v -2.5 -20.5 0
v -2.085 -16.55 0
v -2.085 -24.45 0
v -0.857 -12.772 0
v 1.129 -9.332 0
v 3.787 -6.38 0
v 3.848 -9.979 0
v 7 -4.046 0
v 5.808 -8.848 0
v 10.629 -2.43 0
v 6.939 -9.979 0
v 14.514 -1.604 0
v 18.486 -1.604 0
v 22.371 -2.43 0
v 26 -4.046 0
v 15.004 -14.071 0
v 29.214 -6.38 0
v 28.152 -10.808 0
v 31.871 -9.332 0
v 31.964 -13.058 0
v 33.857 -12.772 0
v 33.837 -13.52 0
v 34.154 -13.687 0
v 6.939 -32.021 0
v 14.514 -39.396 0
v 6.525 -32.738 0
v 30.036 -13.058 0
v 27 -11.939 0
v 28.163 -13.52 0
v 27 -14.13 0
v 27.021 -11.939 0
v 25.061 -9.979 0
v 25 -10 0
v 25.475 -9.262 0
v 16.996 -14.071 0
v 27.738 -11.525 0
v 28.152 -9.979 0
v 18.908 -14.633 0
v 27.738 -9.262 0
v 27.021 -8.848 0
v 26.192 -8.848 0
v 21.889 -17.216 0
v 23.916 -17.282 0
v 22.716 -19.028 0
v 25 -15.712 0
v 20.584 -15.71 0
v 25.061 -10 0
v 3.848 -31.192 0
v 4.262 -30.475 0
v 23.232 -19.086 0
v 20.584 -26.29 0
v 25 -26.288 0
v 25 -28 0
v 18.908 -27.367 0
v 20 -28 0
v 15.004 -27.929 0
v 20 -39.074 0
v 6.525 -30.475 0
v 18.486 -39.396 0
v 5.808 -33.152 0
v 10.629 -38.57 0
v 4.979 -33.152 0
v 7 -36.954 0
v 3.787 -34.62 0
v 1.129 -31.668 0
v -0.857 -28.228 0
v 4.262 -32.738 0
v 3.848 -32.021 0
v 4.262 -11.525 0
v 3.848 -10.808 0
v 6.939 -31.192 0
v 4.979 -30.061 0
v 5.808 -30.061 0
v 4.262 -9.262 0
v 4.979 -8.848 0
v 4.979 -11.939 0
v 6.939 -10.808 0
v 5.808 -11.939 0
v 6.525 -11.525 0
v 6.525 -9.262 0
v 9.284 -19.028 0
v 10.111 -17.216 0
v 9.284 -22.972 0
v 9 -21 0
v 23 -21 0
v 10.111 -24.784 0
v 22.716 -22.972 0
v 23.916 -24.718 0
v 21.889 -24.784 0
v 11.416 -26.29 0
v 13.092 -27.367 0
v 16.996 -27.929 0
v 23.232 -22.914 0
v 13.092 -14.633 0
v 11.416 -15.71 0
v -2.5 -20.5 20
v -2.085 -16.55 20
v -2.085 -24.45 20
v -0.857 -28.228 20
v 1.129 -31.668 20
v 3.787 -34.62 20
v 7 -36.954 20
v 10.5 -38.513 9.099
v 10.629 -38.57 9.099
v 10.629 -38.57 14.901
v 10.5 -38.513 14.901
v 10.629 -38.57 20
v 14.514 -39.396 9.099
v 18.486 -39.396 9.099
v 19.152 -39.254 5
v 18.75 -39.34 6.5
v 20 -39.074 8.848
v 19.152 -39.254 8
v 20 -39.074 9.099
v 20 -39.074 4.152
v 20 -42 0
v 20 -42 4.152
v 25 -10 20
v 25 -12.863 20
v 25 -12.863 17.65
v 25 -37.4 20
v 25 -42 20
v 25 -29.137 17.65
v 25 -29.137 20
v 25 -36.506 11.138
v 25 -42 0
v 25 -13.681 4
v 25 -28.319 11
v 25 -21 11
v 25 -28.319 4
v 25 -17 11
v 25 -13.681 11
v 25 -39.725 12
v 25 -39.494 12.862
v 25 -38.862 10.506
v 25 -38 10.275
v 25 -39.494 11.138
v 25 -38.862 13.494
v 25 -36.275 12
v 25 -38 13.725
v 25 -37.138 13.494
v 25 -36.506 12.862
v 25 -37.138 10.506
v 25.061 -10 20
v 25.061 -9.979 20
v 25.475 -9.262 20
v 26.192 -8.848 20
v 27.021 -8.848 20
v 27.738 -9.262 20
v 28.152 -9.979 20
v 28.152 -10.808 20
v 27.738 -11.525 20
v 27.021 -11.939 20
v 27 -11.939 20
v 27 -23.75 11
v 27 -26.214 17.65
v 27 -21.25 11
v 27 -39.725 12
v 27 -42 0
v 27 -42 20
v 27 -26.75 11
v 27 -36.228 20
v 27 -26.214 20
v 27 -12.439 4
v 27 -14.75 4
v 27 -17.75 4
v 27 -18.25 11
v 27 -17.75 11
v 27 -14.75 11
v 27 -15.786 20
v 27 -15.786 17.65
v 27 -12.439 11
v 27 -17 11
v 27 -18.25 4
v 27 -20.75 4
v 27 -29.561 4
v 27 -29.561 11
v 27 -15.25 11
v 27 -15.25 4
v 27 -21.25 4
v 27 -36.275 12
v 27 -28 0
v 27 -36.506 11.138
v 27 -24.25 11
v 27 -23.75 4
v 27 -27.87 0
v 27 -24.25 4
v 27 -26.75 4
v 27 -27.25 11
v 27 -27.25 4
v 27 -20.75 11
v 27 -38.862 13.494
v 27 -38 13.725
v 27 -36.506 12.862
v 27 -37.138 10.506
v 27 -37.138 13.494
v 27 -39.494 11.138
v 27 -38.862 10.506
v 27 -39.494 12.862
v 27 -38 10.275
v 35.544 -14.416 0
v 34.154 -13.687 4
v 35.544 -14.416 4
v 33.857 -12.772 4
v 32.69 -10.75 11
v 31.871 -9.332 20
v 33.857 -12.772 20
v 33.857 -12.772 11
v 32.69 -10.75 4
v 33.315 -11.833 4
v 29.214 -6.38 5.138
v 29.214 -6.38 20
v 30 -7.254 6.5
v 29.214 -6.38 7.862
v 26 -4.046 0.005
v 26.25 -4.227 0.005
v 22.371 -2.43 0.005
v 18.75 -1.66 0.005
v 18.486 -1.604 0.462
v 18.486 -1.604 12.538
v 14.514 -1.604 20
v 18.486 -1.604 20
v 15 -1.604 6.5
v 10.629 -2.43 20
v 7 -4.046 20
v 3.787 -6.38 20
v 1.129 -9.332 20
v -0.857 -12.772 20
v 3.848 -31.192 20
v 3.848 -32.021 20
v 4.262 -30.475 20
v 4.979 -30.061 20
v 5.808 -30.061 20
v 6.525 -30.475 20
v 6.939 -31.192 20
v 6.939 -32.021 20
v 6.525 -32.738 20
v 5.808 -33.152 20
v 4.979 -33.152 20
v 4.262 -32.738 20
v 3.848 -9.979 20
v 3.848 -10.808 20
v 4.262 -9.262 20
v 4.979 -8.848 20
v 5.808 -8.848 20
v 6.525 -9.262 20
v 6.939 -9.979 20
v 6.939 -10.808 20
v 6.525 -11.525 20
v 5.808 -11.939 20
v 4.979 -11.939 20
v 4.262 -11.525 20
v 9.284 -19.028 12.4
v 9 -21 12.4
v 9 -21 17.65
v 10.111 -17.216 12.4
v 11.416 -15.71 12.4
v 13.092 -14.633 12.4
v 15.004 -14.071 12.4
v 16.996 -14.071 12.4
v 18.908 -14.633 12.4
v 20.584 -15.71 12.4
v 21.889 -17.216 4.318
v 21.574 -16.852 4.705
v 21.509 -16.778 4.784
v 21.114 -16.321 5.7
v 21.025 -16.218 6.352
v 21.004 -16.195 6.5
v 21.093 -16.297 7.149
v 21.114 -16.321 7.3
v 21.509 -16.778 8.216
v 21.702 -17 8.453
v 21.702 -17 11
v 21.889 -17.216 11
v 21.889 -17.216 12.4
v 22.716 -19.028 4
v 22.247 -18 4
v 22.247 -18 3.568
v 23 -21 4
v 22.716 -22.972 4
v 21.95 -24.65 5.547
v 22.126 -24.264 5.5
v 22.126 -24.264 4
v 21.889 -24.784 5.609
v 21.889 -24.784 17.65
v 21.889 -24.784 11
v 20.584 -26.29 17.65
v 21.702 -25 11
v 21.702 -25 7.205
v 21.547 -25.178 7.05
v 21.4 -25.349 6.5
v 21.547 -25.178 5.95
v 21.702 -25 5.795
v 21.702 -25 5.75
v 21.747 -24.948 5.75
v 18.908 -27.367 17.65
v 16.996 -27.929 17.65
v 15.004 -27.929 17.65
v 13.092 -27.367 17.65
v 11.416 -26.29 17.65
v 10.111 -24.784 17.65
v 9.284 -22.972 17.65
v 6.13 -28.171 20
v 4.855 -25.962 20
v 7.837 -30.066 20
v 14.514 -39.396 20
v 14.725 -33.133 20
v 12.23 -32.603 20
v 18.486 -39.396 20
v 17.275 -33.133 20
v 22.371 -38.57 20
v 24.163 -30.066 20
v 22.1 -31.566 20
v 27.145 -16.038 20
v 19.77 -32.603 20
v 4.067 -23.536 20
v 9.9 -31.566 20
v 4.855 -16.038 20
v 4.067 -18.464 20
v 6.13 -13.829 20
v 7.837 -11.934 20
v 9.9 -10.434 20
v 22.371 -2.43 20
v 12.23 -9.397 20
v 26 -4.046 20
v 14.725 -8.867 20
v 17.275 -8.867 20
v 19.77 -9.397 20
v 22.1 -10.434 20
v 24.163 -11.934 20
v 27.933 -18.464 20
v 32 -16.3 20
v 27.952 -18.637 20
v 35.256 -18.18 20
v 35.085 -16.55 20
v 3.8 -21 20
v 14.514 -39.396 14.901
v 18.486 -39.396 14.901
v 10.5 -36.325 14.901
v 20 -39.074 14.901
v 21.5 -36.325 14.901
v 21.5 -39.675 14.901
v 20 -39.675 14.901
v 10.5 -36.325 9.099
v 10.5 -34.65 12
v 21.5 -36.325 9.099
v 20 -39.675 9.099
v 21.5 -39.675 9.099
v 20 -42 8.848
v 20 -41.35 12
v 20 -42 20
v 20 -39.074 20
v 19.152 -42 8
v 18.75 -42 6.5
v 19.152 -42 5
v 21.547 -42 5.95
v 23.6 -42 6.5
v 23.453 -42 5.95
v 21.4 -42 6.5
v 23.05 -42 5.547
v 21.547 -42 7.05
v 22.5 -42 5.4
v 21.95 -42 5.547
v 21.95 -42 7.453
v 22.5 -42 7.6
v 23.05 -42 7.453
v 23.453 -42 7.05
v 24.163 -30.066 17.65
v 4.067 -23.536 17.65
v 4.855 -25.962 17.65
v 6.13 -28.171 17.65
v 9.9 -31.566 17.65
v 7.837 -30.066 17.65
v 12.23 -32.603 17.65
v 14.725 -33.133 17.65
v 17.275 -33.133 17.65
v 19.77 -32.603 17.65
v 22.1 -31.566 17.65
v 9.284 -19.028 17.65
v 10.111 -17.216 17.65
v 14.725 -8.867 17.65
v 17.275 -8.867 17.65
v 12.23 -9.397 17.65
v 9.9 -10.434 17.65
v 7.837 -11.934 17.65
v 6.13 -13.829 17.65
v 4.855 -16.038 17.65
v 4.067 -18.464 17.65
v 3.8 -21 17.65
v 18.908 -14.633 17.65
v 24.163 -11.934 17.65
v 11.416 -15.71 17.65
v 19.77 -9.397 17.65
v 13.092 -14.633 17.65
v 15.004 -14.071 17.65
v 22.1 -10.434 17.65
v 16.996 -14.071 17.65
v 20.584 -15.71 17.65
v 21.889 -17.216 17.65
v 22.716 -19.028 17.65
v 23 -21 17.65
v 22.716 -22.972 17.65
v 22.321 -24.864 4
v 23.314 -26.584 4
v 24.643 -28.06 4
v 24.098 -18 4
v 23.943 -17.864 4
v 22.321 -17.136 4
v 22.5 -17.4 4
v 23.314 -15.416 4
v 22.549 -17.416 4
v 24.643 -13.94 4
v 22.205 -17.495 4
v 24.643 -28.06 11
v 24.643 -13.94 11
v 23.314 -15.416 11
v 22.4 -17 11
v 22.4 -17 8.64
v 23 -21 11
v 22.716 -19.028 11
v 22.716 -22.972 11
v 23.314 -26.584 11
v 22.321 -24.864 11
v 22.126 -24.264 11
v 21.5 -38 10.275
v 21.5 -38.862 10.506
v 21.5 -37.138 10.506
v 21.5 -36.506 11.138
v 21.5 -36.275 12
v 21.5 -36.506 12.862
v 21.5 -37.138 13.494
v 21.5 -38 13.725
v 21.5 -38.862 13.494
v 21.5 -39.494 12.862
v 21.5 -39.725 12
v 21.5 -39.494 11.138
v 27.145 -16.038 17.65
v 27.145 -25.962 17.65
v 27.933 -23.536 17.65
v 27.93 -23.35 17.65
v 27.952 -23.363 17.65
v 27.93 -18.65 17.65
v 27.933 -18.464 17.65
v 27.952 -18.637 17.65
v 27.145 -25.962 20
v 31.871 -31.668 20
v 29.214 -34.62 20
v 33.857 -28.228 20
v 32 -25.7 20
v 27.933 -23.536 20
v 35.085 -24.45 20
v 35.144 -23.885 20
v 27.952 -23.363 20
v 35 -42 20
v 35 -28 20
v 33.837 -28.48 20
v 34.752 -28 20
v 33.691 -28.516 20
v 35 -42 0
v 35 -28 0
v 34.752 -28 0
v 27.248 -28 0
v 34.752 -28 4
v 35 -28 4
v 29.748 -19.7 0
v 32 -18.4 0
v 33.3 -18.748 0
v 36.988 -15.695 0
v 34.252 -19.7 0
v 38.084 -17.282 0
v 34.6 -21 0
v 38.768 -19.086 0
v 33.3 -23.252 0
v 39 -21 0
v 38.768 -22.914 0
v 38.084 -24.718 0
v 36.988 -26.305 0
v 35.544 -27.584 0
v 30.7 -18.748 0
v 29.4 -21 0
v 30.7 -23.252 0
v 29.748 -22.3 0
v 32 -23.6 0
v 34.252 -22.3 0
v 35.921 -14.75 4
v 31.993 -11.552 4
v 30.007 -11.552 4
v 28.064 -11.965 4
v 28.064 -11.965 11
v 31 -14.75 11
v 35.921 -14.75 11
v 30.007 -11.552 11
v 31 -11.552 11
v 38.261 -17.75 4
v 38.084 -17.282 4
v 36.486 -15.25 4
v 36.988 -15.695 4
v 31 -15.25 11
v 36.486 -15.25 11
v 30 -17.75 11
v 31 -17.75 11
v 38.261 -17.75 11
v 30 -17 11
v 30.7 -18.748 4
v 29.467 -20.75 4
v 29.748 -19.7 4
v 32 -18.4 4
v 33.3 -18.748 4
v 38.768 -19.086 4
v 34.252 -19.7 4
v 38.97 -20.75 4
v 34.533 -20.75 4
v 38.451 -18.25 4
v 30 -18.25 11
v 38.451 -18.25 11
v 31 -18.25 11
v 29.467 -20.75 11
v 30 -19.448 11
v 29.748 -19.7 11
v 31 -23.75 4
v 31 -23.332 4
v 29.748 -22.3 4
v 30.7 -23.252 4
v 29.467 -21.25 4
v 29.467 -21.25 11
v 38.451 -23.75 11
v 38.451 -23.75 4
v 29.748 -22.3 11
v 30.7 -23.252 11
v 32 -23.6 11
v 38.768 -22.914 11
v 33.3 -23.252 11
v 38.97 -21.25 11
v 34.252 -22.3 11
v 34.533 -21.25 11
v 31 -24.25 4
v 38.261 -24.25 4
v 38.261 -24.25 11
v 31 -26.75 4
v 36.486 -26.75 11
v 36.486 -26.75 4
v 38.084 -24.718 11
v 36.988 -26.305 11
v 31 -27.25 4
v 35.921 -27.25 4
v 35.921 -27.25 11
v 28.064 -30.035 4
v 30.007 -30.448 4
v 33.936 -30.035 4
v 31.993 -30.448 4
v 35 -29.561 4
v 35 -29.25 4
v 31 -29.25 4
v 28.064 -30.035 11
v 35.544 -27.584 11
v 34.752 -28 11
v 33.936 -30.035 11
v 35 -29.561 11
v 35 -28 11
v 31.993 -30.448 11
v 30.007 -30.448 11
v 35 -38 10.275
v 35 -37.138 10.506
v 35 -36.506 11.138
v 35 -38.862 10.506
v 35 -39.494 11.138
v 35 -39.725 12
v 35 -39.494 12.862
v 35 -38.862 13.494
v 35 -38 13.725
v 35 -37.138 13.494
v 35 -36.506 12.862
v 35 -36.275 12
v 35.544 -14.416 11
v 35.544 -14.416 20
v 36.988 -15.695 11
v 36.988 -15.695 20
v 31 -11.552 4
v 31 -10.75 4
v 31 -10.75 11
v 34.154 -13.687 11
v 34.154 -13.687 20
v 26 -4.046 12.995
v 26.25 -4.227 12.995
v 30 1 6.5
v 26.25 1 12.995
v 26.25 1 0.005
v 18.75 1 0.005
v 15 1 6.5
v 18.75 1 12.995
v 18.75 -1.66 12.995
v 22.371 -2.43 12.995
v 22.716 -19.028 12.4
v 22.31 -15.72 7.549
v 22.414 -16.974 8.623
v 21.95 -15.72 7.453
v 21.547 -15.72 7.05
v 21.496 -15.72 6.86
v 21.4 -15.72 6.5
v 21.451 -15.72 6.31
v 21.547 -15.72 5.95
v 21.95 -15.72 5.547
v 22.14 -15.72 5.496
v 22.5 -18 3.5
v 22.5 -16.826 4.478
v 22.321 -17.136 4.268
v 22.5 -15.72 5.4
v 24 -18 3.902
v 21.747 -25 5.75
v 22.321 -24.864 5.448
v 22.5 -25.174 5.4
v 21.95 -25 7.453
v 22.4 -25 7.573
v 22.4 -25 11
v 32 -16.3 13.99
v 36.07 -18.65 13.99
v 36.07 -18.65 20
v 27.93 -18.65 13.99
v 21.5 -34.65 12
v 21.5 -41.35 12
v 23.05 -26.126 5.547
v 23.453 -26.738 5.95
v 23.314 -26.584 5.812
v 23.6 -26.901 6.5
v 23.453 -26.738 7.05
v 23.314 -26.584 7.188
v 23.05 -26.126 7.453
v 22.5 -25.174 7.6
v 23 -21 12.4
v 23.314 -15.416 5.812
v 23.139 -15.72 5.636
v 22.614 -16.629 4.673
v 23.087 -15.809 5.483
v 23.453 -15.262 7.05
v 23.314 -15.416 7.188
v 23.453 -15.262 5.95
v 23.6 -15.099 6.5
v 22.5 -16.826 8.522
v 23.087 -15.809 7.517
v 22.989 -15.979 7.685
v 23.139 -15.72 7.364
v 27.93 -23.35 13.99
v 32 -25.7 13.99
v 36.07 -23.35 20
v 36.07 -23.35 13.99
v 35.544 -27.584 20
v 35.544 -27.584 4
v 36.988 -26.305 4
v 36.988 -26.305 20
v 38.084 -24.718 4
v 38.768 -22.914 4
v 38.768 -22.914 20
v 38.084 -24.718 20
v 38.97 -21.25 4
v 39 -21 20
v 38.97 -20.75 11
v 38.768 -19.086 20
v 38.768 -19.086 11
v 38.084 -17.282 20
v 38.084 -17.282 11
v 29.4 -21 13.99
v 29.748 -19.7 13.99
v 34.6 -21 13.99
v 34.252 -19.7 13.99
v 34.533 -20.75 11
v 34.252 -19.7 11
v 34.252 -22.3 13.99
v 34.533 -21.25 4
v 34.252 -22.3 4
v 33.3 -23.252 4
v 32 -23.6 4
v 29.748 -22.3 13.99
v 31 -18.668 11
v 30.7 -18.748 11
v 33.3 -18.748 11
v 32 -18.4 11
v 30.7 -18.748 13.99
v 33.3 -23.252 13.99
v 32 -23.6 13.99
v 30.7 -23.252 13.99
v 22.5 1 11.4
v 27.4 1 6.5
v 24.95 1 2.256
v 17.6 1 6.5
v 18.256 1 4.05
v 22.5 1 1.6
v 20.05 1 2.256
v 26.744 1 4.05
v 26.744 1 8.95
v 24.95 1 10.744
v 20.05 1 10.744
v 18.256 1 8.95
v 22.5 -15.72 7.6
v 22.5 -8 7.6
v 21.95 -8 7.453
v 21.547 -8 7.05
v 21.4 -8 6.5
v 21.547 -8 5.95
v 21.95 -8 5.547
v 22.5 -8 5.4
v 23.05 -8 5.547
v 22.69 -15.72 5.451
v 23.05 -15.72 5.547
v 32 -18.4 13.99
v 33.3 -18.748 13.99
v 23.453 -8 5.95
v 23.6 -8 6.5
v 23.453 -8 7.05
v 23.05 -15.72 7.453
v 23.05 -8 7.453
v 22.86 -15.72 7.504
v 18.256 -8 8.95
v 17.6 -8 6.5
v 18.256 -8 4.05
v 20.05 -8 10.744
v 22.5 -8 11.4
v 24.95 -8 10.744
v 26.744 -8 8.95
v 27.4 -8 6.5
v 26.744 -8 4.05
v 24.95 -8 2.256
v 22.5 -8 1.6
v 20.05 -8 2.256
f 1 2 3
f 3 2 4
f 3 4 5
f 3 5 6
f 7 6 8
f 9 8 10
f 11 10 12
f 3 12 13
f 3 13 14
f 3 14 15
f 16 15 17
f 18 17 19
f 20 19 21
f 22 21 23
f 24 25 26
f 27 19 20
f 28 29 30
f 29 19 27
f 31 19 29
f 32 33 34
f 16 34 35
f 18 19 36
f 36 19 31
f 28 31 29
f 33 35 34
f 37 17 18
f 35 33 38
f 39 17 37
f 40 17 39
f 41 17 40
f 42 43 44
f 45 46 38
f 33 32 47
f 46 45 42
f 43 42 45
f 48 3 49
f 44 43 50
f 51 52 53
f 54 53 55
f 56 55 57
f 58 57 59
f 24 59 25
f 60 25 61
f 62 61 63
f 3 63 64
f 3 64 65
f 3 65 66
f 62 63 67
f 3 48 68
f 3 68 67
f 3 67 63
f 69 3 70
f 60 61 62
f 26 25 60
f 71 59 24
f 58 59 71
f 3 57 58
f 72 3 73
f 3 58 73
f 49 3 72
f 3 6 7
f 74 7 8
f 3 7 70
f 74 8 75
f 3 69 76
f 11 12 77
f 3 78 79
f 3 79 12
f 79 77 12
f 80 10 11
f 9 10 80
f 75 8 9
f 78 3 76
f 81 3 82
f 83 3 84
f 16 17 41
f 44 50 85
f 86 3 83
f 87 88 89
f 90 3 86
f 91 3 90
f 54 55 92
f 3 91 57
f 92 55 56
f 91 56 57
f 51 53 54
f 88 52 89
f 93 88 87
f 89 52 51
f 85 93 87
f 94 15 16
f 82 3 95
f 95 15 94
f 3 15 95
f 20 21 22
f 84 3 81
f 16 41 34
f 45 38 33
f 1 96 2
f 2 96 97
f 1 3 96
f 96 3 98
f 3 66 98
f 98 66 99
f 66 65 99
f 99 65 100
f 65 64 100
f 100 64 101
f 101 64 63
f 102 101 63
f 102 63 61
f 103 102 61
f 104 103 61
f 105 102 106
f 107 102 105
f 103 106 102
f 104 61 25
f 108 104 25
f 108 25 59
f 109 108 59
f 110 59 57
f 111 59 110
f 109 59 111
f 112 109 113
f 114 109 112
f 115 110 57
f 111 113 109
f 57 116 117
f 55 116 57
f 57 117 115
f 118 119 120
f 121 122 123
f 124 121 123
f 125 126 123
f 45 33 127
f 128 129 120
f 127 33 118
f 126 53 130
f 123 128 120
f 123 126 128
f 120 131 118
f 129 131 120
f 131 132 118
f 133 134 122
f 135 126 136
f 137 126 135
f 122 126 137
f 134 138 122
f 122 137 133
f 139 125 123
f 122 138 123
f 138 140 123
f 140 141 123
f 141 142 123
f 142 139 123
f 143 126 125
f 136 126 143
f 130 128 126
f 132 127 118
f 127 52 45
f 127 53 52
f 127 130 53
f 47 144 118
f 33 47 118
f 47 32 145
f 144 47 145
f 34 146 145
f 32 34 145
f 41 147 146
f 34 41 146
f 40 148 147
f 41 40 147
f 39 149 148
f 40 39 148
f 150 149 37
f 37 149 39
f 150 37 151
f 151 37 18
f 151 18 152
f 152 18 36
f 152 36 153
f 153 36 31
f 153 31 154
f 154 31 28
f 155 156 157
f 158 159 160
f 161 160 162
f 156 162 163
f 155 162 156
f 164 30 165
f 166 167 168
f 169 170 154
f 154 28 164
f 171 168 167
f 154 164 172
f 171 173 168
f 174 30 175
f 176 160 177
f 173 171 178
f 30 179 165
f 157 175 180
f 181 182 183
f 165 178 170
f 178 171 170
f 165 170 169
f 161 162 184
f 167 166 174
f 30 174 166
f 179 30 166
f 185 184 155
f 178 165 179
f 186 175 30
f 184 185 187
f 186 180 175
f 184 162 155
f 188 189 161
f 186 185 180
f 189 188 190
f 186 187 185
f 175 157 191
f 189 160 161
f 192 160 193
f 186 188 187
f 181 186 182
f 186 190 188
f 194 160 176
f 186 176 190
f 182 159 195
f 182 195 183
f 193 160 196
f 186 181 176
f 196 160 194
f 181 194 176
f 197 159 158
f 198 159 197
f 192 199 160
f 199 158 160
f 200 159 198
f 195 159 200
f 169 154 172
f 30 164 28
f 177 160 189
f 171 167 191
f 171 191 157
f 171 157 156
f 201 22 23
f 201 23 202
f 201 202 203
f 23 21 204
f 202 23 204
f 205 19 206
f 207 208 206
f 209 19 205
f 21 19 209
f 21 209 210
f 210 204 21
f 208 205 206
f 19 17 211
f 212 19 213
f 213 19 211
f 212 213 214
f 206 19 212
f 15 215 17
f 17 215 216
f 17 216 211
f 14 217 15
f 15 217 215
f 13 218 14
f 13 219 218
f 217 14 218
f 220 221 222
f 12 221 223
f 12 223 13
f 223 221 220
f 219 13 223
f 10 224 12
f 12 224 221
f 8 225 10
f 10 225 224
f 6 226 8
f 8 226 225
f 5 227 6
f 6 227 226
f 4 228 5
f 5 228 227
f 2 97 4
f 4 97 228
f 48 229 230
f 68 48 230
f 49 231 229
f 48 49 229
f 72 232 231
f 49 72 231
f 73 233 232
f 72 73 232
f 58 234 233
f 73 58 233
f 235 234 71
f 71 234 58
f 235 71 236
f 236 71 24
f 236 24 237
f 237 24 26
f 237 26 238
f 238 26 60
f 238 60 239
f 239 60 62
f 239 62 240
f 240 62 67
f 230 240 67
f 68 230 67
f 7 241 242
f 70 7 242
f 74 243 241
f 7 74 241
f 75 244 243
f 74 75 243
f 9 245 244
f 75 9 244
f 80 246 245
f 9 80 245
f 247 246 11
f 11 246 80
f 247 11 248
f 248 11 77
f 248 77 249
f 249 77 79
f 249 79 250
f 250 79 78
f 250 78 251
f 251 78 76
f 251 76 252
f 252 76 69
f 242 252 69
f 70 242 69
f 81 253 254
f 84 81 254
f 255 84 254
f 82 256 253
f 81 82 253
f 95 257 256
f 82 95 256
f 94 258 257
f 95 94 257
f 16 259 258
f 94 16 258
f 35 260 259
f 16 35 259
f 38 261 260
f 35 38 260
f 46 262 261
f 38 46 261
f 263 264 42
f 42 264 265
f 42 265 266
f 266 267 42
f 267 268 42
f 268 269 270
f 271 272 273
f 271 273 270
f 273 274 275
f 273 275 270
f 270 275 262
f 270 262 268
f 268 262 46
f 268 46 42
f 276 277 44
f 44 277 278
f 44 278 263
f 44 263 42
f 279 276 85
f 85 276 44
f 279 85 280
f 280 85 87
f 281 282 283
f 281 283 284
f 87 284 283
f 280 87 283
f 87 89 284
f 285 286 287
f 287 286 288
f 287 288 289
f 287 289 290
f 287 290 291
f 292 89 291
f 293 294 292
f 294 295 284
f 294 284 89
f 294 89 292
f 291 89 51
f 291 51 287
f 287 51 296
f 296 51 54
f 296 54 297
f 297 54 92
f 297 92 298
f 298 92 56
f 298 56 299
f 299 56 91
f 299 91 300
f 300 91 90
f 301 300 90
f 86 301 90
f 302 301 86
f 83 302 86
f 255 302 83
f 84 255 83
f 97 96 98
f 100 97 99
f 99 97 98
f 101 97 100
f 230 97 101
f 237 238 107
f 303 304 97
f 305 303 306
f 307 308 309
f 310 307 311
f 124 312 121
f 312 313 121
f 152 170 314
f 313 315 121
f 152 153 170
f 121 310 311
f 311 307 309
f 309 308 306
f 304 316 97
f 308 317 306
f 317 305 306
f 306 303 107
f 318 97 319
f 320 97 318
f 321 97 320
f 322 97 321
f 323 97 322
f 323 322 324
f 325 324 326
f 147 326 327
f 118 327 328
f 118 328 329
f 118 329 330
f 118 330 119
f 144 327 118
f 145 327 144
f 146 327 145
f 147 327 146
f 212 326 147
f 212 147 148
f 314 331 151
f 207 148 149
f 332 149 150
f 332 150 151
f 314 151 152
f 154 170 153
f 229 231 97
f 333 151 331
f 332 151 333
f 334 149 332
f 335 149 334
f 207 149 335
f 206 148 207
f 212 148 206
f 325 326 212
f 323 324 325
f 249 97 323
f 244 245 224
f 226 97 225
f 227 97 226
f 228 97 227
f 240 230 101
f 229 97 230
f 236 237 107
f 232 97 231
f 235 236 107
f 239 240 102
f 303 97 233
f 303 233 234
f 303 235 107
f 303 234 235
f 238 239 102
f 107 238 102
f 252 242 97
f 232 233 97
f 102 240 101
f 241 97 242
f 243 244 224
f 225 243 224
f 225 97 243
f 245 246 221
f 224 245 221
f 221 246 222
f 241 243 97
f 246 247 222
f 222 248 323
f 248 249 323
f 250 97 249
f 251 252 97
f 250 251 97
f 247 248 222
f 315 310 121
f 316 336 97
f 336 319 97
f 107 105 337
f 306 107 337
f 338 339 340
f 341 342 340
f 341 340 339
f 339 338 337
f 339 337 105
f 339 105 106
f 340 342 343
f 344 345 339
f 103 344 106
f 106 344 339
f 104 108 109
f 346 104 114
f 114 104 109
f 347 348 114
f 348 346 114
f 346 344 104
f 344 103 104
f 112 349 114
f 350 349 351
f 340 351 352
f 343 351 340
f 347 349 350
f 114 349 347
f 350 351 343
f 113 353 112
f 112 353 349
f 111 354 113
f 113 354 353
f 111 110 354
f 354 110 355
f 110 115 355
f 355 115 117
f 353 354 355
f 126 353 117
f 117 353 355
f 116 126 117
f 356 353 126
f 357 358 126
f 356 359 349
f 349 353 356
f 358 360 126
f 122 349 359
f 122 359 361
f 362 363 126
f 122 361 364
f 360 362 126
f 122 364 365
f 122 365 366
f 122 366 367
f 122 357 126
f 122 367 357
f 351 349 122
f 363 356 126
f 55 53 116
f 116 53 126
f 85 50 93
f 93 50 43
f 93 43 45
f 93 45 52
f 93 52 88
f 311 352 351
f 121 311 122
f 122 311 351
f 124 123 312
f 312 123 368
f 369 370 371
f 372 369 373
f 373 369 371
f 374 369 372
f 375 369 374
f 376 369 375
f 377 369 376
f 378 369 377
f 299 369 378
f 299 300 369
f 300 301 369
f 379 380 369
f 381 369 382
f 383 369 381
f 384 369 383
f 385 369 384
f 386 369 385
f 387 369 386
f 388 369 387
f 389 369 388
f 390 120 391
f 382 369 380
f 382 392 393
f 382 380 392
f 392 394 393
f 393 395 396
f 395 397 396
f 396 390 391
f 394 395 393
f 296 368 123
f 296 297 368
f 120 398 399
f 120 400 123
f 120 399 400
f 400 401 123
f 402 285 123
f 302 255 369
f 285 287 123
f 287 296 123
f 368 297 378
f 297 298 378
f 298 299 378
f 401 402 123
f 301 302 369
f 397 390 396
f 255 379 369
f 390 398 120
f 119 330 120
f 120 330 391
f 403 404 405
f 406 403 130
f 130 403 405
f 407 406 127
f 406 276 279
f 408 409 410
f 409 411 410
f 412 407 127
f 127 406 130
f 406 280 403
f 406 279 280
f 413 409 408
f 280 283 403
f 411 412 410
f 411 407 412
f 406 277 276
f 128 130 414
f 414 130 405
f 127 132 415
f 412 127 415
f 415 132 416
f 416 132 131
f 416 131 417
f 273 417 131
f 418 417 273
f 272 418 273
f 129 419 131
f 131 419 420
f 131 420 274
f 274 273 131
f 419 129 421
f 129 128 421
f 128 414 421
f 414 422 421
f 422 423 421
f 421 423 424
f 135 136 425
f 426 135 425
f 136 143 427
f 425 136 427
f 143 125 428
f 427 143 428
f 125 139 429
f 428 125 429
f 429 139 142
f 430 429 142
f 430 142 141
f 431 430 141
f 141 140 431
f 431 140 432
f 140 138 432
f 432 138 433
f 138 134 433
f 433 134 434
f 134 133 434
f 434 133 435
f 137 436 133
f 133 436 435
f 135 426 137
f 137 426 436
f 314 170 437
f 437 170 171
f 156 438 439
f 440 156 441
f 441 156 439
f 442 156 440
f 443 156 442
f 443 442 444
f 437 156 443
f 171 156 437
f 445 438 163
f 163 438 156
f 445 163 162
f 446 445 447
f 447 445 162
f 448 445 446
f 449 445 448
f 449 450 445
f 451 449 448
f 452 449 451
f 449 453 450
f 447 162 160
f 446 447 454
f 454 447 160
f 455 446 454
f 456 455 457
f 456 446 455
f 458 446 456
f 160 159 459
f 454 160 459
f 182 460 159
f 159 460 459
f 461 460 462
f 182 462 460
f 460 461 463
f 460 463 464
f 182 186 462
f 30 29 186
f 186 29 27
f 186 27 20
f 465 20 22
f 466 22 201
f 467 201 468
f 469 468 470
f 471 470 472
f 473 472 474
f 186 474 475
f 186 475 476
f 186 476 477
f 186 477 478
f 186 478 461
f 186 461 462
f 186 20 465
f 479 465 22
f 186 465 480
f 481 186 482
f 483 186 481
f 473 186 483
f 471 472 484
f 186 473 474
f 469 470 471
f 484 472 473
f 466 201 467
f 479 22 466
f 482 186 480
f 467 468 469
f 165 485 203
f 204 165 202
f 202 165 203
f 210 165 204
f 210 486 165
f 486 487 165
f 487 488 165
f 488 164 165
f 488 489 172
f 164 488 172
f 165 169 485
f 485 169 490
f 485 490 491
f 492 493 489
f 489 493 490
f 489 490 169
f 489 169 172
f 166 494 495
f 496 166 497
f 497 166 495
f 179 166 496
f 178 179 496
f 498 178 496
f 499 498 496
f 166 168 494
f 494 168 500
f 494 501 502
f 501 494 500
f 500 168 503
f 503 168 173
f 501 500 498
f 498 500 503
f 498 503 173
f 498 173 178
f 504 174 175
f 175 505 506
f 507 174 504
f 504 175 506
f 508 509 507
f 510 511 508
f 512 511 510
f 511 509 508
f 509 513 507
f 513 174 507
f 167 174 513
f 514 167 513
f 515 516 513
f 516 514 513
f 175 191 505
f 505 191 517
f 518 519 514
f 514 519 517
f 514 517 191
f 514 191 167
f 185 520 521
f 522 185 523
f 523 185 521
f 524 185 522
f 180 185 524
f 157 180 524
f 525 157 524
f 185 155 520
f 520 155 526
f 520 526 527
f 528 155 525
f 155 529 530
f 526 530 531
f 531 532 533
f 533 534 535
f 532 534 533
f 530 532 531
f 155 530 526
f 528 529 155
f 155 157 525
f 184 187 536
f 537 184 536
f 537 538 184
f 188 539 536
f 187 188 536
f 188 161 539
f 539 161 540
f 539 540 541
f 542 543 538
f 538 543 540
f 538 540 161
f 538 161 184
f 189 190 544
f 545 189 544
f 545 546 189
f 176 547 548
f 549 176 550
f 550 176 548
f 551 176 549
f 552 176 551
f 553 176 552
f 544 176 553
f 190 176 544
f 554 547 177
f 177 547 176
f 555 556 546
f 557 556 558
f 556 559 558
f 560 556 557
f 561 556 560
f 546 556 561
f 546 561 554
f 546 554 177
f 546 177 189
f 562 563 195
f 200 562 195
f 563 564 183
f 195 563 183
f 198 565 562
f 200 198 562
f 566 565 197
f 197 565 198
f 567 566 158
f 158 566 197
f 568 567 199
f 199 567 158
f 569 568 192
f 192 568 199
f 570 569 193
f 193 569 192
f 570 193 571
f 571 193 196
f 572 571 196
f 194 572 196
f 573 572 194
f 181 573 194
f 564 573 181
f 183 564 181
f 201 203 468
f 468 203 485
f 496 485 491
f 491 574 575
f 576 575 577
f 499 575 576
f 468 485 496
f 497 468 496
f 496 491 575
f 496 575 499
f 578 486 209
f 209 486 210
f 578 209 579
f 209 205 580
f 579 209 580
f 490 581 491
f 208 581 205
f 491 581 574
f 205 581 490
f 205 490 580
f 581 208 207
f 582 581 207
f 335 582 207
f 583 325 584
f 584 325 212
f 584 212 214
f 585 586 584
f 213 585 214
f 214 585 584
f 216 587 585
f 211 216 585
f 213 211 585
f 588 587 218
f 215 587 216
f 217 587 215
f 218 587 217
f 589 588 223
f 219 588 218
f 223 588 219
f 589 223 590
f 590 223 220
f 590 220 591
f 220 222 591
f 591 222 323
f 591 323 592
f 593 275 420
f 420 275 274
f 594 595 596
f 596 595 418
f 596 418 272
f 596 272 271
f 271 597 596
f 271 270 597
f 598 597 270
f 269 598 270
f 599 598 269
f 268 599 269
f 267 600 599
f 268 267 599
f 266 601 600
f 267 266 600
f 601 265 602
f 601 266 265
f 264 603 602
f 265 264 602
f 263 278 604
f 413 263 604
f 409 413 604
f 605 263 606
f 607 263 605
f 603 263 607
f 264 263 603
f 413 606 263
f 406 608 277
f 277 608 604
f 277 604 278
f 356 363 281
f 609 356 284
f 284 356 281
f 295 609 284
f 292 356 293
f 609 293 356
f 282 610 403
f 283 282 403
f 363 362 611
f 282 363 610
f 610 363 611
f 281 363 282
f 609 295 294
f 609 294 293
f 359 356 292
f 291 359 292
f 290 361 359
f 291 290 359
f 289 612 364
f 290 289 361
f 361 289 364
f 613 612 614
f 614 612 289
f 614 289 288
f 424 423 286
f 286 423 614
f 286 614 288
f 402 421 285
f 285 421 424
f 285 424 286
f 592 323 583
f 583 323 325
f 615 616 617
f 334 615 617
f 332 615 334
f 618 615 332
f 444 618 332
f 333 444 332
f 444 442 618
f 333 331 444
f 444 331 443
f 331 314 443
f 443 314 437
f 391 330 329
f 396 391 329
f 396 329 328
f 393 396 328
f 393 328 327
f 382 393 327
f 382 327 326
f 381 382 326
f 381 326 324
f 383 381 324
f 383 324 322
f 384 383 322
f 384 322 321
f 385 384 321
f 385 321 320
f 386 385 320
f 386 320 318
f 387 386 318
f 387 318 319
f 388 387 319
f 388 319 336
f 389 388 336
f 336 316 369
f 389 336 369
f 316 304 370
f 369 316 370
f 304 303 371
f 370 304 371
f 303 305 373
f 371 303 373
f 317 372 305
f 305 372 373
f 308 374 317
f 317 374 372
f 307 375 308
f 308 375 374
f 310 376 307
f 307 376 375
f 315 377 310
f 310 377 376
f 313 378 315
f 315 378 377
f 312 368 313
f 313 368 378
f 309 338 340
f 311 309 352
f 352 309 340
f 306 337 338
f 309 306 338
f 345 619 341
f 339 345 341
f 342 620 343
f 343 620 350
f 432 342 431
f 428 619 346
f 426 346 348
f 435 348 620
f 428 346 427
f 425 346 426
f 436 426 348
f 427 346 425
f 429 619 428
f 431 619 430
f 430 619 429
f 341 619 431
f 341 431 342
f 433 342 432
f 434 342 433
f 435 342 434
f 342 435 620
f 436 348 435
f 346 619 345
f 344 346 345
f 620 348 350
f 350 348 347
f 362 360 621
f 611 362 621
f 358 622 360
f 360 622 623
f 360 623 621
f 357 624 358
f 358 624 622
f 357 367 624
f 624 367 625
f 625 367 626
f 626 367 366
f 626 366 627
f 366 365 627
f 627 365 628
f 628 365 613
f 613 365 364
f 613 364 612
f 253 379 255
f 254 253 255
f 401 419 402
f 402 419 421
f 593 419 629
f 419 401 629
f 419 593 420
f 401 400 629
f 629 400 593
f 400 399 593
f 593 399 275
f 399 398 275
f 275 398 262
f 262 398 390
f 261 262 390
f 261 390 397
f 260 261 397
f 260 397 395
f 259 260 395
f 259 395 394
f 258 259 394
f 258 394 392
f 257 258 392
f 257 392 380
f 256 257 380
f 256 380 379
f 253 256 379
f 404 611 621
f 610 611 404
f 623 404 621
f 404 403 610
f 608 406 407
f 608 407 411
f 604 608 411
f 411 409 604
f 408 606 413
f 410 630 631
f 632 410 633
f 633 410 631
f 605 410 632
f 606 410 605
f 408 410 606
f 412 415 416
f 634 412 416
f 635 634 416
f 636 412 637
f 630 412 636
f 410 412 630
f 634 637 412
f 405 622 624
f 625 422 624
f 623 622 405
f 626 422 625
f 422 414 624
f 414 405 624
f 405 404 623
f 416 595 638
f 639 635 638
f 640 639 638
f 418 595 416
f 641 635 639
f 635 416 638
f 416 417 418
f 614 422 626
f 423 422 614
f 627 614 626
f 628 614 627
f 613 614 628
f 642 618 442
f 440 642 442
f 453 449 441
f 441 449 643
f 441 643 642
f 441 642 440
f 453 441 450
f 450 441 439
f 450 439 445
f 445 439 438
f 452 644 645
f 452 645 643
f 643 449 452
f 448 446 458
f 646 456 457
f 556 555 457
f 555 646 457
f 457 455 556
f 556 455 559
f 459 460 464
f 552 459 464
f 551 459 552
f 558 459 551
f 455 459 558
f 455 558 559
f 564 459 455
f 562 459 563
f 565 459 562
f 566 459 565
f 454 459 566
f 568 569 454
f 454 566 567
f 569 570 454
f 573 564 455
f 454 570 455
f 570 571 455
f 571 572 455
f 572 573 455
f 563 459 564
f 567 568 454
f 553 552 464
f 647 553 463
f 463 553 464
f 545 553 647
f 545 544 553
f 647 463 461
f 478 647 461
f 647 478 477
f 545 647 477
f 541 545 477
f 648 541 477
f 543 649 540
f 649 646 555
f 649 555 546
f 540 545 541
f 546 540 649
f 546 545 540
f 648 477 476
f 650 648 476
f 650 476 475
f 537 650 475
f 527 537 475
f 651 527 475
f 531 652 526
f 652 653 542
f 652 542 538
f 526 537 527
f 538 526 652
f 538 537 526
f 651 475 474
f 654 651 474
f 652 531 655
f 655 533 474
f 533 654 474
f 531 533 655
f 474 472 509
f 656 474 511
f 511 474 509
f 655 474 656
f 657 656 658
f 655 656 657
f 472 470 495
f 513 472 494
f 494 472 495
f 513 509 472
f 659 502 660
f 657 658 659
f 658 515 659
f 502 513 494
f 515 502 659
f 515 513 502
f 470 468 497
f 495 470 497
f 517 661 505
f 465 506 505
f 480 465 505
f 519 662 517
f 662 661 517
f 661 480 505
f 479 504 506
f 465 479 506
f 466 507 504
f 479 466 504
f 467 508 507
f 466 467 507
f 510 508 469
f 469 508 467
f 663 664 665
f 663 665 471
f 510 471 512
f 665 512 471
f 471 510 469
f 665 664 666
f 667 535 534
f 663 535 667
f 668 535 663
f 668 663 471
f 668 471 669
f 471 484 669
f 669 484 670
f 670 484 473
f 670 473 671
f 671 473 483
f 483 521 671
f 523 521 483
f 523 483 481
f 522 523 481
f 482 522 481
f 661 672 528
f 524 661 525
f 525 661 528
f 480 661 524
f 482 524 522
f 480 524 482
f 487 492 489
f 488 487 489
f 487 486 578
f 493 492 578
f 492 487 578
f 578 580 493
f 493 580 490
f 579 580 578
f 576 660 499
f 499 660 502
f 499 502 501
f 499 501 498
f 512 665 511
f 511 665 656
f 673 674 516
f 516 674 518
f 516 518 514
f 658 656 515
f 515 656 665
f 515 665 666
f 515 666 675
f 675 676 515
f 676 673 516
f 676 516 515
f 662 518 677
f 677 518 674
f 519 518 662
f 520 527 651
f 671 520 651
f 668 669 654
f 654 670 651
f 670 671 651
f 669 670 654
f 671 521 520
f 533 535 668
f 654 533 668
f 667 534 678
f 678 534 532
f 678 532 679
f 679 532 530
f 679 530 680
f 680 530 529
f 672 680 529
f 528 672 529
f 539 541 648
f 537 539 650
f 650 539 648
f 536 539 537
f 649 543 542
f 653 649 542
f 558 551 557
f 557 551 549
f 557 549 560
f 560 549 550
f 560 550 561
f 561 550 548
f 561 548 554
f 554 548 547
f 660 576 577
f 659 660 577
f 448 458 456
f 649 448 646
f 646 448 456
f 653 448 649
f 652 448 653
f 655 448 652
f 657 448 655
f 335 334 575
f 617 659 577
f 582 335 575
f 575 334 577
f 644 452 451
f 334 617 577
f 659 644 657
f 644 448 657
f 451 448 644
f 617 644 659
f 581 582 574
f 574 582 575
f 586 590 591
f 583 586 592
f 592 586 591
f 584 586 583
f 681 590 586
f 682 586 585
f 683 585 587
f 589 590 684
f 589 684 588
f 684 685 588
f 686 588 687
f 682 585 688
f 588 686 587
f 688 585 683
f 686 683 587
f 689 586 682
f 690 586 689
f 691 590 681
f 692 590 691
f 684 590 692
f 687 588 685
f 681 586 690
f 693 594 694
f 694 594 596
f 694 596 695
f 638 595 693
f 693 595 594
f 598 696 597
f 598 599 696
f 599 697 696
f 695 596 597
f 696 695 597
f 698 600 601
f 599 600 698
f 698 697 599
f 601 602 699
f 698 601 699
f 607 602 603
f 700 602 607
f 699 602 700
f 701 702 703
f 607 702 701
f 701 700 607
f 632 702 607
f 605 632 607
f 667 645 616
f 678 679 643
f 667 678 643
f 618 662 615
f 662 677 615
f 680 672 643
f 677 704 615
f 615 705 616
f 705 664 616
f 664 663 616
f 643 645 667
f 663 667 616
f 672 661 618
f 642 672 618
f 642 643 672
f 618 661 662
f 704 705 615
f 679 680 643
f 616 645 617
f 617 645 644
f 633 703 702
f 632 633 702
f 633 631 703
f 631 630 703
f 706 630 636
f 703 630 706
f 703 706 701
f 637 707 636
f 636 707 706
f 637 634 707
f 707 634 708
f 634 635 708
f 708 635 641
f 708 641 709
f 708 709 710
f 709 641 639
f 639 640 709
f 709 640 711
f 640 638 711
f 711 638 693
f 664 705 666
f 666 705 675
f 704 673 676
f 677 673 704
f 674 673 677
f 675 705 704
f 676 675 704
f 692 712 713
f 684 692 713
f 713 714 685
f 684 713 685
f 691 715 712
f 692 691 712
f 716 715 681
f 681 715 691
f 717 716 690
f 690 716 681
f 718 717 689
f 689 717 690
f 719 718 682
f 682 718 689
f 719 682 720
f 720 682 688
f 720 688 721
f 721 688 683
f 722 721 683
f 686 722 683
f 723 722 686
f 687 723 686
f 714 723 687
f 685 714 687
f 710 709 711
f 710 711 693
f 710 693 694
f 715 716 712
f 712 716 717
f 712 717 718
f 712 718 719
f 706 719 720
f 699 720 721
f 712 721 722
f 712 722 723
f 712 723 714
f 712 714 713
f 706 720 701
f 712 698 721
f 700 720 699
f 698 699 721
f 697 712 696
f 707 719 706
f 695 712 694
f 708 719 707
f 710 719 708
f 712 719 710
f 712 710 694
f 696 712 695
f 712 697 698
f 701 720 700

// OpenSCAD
// file: configuration.scad
// Increase this if your slicer or printer make holes too tight.
extra_radius = 0.1;

// OD = outside diameter, corner to corner.
m3_nut_od = 6.1;
m3_nut_radius = m3_nut_od/2 + 0.2 + extra_radius;
m3_washer_radius = 3.5 + extra_radius;
m3_nut_thickness = 2.35;
m3_nyloc_thickness = 3.85;

// Major diameter of metric 3mm thread.
m3_major = 2.85;
m3_radius = m3_major/2 + extra_radius;
m3_wide_radius = m3_major/2 + extra_radius + 0.2;

// NEMA17 stepper motors.
motor_shaft_diameter = 5;
motor_shaft_radius = motor_shaft_diameter/2 + extra_radius;

// Frame brackets. M3x8mm screws work best with 3.6 mm brackets.
thickness = 3.6;

// OpenBeam or Misumi. Currently only 15x15 mm, but there is a plan
// to make models more parametric and allow 20x20 mm in the future.
extrusion = 15;

// Placement for the NEMA17 stepper motors.
motor_offset = 44;
motor_length = 47;
// main file
// Based on "Makergear Filament drive goes Bowden" by Luke321
// http://www.thingiverse.com/thing:63674

include <configuration.scad>;

filament_offset = 22.5;

module extruder() {
  rotate([90, 0, 0]) difference() {
    union() {
      //main cylinder
      translate([16.5,20,20.5]) rotate([90,0,0]) cylinder(h=20, r=19);

      //bearing mount

      translate([31,20,21]) rotate([90,0,0]) cylinder (h=20, r=8);

      //pushfit/pneufit mount
      translate([filament_offset, 6.5, 13])
        cylinder(r=7.5, h=28, center=true, $fn=6);

      //filament support
      translate([21.75,6.5,34]) rotate([0,0,0]) cylinder (h=8, r=3, $fn=12);

      //clamp
      translate([20, 0, 28]) cube([15, 20, 14]);
    }

    //pulley opening
    translate([16,21,21]) rotate([90,0,0]){
      cylinder (h=22, r=7);

      rotate([0,0,45]) {
        //translate([14,0,0]) cylinder(h=22, r=1.6, $fn=12);
        translate([0,15,0]) cylinder(h=22, r=1.6, $fn=12);
        translate([-15,0,0]) cylinder(h=22, r=1.6, $fn=12);
        translate([0,-15,0]) cylinder(h=22, r=1.6, $fn=12);
      }
    }

    //gearhead indentation
#    translate([16,21,21]) rotate([90,0,0]) cylinder (h=3.35, r=12.2);

    //pulley hub indentation
    translate([16,20-2,21]) rotate([90,0,0]) cylinder (h=5.6, r=7);

    //bearing screws
#    translate([32,21,21]) rotate([90,0,0]) cylinder (h=22, r=2.6, $fn=12);
#    translate([32,22,21]) rotate([90,30,0]) cylinder (h=8.01, r=4.7, $fn=6);

    //bearing
    difference() {
      union() {
       translate([31,11,21]) rotate([90,0,0]) cylinder (h=7, r=9.5);

       translate([31,9-5,21-8.25-2]) cube([20, 7, 18.5]);
        //opening between bearing and pulley
        translate([20,11-5.25,21-8.25+3.25+1]) cube([10, 5.25, 8]);
      }
      //removable supports
      for (z = [15:3:27]) {
        translate([36, 10, z])  cube([20, 20, 0.5], center=true);
      }
    }

    //filament path chamfer
    translate([filament_offset,6.5,15]) rotate([0,0,0]) 
      cylinder(h=3, r1=0.5, r2=3, $fn=12);

    //filament path
    translate([filament_offset,6.5,-10]) rotate([0,0,0]) 
      cylinder(h=60, r=1.1, $fn=12);

    //pushfit/pneufit mount
color("blue")    translate([filament_offset, 6.5, -2])  cylinder(r=4.9, h=10, $fn=12);
//color("blue")    translate([filament_offset, 6.5, -2])  cylinder(r=4, h=10, $fn=12);

    //clamp slit
    translate([25,-1,10]) cube([2, 22, 35]);
    //clamp nut
    translate([10.5,12,38]) rotate([0,90,0])
      cylinder(h=11, r=m3_nut_radius, $fn=6);
    //clamp screw hole
#    translate([15,12,38]) rotate([0,90,0])
      cylinder(h=25, r=m3_wide_radius, $fn=12);
  }
}

extruder();
